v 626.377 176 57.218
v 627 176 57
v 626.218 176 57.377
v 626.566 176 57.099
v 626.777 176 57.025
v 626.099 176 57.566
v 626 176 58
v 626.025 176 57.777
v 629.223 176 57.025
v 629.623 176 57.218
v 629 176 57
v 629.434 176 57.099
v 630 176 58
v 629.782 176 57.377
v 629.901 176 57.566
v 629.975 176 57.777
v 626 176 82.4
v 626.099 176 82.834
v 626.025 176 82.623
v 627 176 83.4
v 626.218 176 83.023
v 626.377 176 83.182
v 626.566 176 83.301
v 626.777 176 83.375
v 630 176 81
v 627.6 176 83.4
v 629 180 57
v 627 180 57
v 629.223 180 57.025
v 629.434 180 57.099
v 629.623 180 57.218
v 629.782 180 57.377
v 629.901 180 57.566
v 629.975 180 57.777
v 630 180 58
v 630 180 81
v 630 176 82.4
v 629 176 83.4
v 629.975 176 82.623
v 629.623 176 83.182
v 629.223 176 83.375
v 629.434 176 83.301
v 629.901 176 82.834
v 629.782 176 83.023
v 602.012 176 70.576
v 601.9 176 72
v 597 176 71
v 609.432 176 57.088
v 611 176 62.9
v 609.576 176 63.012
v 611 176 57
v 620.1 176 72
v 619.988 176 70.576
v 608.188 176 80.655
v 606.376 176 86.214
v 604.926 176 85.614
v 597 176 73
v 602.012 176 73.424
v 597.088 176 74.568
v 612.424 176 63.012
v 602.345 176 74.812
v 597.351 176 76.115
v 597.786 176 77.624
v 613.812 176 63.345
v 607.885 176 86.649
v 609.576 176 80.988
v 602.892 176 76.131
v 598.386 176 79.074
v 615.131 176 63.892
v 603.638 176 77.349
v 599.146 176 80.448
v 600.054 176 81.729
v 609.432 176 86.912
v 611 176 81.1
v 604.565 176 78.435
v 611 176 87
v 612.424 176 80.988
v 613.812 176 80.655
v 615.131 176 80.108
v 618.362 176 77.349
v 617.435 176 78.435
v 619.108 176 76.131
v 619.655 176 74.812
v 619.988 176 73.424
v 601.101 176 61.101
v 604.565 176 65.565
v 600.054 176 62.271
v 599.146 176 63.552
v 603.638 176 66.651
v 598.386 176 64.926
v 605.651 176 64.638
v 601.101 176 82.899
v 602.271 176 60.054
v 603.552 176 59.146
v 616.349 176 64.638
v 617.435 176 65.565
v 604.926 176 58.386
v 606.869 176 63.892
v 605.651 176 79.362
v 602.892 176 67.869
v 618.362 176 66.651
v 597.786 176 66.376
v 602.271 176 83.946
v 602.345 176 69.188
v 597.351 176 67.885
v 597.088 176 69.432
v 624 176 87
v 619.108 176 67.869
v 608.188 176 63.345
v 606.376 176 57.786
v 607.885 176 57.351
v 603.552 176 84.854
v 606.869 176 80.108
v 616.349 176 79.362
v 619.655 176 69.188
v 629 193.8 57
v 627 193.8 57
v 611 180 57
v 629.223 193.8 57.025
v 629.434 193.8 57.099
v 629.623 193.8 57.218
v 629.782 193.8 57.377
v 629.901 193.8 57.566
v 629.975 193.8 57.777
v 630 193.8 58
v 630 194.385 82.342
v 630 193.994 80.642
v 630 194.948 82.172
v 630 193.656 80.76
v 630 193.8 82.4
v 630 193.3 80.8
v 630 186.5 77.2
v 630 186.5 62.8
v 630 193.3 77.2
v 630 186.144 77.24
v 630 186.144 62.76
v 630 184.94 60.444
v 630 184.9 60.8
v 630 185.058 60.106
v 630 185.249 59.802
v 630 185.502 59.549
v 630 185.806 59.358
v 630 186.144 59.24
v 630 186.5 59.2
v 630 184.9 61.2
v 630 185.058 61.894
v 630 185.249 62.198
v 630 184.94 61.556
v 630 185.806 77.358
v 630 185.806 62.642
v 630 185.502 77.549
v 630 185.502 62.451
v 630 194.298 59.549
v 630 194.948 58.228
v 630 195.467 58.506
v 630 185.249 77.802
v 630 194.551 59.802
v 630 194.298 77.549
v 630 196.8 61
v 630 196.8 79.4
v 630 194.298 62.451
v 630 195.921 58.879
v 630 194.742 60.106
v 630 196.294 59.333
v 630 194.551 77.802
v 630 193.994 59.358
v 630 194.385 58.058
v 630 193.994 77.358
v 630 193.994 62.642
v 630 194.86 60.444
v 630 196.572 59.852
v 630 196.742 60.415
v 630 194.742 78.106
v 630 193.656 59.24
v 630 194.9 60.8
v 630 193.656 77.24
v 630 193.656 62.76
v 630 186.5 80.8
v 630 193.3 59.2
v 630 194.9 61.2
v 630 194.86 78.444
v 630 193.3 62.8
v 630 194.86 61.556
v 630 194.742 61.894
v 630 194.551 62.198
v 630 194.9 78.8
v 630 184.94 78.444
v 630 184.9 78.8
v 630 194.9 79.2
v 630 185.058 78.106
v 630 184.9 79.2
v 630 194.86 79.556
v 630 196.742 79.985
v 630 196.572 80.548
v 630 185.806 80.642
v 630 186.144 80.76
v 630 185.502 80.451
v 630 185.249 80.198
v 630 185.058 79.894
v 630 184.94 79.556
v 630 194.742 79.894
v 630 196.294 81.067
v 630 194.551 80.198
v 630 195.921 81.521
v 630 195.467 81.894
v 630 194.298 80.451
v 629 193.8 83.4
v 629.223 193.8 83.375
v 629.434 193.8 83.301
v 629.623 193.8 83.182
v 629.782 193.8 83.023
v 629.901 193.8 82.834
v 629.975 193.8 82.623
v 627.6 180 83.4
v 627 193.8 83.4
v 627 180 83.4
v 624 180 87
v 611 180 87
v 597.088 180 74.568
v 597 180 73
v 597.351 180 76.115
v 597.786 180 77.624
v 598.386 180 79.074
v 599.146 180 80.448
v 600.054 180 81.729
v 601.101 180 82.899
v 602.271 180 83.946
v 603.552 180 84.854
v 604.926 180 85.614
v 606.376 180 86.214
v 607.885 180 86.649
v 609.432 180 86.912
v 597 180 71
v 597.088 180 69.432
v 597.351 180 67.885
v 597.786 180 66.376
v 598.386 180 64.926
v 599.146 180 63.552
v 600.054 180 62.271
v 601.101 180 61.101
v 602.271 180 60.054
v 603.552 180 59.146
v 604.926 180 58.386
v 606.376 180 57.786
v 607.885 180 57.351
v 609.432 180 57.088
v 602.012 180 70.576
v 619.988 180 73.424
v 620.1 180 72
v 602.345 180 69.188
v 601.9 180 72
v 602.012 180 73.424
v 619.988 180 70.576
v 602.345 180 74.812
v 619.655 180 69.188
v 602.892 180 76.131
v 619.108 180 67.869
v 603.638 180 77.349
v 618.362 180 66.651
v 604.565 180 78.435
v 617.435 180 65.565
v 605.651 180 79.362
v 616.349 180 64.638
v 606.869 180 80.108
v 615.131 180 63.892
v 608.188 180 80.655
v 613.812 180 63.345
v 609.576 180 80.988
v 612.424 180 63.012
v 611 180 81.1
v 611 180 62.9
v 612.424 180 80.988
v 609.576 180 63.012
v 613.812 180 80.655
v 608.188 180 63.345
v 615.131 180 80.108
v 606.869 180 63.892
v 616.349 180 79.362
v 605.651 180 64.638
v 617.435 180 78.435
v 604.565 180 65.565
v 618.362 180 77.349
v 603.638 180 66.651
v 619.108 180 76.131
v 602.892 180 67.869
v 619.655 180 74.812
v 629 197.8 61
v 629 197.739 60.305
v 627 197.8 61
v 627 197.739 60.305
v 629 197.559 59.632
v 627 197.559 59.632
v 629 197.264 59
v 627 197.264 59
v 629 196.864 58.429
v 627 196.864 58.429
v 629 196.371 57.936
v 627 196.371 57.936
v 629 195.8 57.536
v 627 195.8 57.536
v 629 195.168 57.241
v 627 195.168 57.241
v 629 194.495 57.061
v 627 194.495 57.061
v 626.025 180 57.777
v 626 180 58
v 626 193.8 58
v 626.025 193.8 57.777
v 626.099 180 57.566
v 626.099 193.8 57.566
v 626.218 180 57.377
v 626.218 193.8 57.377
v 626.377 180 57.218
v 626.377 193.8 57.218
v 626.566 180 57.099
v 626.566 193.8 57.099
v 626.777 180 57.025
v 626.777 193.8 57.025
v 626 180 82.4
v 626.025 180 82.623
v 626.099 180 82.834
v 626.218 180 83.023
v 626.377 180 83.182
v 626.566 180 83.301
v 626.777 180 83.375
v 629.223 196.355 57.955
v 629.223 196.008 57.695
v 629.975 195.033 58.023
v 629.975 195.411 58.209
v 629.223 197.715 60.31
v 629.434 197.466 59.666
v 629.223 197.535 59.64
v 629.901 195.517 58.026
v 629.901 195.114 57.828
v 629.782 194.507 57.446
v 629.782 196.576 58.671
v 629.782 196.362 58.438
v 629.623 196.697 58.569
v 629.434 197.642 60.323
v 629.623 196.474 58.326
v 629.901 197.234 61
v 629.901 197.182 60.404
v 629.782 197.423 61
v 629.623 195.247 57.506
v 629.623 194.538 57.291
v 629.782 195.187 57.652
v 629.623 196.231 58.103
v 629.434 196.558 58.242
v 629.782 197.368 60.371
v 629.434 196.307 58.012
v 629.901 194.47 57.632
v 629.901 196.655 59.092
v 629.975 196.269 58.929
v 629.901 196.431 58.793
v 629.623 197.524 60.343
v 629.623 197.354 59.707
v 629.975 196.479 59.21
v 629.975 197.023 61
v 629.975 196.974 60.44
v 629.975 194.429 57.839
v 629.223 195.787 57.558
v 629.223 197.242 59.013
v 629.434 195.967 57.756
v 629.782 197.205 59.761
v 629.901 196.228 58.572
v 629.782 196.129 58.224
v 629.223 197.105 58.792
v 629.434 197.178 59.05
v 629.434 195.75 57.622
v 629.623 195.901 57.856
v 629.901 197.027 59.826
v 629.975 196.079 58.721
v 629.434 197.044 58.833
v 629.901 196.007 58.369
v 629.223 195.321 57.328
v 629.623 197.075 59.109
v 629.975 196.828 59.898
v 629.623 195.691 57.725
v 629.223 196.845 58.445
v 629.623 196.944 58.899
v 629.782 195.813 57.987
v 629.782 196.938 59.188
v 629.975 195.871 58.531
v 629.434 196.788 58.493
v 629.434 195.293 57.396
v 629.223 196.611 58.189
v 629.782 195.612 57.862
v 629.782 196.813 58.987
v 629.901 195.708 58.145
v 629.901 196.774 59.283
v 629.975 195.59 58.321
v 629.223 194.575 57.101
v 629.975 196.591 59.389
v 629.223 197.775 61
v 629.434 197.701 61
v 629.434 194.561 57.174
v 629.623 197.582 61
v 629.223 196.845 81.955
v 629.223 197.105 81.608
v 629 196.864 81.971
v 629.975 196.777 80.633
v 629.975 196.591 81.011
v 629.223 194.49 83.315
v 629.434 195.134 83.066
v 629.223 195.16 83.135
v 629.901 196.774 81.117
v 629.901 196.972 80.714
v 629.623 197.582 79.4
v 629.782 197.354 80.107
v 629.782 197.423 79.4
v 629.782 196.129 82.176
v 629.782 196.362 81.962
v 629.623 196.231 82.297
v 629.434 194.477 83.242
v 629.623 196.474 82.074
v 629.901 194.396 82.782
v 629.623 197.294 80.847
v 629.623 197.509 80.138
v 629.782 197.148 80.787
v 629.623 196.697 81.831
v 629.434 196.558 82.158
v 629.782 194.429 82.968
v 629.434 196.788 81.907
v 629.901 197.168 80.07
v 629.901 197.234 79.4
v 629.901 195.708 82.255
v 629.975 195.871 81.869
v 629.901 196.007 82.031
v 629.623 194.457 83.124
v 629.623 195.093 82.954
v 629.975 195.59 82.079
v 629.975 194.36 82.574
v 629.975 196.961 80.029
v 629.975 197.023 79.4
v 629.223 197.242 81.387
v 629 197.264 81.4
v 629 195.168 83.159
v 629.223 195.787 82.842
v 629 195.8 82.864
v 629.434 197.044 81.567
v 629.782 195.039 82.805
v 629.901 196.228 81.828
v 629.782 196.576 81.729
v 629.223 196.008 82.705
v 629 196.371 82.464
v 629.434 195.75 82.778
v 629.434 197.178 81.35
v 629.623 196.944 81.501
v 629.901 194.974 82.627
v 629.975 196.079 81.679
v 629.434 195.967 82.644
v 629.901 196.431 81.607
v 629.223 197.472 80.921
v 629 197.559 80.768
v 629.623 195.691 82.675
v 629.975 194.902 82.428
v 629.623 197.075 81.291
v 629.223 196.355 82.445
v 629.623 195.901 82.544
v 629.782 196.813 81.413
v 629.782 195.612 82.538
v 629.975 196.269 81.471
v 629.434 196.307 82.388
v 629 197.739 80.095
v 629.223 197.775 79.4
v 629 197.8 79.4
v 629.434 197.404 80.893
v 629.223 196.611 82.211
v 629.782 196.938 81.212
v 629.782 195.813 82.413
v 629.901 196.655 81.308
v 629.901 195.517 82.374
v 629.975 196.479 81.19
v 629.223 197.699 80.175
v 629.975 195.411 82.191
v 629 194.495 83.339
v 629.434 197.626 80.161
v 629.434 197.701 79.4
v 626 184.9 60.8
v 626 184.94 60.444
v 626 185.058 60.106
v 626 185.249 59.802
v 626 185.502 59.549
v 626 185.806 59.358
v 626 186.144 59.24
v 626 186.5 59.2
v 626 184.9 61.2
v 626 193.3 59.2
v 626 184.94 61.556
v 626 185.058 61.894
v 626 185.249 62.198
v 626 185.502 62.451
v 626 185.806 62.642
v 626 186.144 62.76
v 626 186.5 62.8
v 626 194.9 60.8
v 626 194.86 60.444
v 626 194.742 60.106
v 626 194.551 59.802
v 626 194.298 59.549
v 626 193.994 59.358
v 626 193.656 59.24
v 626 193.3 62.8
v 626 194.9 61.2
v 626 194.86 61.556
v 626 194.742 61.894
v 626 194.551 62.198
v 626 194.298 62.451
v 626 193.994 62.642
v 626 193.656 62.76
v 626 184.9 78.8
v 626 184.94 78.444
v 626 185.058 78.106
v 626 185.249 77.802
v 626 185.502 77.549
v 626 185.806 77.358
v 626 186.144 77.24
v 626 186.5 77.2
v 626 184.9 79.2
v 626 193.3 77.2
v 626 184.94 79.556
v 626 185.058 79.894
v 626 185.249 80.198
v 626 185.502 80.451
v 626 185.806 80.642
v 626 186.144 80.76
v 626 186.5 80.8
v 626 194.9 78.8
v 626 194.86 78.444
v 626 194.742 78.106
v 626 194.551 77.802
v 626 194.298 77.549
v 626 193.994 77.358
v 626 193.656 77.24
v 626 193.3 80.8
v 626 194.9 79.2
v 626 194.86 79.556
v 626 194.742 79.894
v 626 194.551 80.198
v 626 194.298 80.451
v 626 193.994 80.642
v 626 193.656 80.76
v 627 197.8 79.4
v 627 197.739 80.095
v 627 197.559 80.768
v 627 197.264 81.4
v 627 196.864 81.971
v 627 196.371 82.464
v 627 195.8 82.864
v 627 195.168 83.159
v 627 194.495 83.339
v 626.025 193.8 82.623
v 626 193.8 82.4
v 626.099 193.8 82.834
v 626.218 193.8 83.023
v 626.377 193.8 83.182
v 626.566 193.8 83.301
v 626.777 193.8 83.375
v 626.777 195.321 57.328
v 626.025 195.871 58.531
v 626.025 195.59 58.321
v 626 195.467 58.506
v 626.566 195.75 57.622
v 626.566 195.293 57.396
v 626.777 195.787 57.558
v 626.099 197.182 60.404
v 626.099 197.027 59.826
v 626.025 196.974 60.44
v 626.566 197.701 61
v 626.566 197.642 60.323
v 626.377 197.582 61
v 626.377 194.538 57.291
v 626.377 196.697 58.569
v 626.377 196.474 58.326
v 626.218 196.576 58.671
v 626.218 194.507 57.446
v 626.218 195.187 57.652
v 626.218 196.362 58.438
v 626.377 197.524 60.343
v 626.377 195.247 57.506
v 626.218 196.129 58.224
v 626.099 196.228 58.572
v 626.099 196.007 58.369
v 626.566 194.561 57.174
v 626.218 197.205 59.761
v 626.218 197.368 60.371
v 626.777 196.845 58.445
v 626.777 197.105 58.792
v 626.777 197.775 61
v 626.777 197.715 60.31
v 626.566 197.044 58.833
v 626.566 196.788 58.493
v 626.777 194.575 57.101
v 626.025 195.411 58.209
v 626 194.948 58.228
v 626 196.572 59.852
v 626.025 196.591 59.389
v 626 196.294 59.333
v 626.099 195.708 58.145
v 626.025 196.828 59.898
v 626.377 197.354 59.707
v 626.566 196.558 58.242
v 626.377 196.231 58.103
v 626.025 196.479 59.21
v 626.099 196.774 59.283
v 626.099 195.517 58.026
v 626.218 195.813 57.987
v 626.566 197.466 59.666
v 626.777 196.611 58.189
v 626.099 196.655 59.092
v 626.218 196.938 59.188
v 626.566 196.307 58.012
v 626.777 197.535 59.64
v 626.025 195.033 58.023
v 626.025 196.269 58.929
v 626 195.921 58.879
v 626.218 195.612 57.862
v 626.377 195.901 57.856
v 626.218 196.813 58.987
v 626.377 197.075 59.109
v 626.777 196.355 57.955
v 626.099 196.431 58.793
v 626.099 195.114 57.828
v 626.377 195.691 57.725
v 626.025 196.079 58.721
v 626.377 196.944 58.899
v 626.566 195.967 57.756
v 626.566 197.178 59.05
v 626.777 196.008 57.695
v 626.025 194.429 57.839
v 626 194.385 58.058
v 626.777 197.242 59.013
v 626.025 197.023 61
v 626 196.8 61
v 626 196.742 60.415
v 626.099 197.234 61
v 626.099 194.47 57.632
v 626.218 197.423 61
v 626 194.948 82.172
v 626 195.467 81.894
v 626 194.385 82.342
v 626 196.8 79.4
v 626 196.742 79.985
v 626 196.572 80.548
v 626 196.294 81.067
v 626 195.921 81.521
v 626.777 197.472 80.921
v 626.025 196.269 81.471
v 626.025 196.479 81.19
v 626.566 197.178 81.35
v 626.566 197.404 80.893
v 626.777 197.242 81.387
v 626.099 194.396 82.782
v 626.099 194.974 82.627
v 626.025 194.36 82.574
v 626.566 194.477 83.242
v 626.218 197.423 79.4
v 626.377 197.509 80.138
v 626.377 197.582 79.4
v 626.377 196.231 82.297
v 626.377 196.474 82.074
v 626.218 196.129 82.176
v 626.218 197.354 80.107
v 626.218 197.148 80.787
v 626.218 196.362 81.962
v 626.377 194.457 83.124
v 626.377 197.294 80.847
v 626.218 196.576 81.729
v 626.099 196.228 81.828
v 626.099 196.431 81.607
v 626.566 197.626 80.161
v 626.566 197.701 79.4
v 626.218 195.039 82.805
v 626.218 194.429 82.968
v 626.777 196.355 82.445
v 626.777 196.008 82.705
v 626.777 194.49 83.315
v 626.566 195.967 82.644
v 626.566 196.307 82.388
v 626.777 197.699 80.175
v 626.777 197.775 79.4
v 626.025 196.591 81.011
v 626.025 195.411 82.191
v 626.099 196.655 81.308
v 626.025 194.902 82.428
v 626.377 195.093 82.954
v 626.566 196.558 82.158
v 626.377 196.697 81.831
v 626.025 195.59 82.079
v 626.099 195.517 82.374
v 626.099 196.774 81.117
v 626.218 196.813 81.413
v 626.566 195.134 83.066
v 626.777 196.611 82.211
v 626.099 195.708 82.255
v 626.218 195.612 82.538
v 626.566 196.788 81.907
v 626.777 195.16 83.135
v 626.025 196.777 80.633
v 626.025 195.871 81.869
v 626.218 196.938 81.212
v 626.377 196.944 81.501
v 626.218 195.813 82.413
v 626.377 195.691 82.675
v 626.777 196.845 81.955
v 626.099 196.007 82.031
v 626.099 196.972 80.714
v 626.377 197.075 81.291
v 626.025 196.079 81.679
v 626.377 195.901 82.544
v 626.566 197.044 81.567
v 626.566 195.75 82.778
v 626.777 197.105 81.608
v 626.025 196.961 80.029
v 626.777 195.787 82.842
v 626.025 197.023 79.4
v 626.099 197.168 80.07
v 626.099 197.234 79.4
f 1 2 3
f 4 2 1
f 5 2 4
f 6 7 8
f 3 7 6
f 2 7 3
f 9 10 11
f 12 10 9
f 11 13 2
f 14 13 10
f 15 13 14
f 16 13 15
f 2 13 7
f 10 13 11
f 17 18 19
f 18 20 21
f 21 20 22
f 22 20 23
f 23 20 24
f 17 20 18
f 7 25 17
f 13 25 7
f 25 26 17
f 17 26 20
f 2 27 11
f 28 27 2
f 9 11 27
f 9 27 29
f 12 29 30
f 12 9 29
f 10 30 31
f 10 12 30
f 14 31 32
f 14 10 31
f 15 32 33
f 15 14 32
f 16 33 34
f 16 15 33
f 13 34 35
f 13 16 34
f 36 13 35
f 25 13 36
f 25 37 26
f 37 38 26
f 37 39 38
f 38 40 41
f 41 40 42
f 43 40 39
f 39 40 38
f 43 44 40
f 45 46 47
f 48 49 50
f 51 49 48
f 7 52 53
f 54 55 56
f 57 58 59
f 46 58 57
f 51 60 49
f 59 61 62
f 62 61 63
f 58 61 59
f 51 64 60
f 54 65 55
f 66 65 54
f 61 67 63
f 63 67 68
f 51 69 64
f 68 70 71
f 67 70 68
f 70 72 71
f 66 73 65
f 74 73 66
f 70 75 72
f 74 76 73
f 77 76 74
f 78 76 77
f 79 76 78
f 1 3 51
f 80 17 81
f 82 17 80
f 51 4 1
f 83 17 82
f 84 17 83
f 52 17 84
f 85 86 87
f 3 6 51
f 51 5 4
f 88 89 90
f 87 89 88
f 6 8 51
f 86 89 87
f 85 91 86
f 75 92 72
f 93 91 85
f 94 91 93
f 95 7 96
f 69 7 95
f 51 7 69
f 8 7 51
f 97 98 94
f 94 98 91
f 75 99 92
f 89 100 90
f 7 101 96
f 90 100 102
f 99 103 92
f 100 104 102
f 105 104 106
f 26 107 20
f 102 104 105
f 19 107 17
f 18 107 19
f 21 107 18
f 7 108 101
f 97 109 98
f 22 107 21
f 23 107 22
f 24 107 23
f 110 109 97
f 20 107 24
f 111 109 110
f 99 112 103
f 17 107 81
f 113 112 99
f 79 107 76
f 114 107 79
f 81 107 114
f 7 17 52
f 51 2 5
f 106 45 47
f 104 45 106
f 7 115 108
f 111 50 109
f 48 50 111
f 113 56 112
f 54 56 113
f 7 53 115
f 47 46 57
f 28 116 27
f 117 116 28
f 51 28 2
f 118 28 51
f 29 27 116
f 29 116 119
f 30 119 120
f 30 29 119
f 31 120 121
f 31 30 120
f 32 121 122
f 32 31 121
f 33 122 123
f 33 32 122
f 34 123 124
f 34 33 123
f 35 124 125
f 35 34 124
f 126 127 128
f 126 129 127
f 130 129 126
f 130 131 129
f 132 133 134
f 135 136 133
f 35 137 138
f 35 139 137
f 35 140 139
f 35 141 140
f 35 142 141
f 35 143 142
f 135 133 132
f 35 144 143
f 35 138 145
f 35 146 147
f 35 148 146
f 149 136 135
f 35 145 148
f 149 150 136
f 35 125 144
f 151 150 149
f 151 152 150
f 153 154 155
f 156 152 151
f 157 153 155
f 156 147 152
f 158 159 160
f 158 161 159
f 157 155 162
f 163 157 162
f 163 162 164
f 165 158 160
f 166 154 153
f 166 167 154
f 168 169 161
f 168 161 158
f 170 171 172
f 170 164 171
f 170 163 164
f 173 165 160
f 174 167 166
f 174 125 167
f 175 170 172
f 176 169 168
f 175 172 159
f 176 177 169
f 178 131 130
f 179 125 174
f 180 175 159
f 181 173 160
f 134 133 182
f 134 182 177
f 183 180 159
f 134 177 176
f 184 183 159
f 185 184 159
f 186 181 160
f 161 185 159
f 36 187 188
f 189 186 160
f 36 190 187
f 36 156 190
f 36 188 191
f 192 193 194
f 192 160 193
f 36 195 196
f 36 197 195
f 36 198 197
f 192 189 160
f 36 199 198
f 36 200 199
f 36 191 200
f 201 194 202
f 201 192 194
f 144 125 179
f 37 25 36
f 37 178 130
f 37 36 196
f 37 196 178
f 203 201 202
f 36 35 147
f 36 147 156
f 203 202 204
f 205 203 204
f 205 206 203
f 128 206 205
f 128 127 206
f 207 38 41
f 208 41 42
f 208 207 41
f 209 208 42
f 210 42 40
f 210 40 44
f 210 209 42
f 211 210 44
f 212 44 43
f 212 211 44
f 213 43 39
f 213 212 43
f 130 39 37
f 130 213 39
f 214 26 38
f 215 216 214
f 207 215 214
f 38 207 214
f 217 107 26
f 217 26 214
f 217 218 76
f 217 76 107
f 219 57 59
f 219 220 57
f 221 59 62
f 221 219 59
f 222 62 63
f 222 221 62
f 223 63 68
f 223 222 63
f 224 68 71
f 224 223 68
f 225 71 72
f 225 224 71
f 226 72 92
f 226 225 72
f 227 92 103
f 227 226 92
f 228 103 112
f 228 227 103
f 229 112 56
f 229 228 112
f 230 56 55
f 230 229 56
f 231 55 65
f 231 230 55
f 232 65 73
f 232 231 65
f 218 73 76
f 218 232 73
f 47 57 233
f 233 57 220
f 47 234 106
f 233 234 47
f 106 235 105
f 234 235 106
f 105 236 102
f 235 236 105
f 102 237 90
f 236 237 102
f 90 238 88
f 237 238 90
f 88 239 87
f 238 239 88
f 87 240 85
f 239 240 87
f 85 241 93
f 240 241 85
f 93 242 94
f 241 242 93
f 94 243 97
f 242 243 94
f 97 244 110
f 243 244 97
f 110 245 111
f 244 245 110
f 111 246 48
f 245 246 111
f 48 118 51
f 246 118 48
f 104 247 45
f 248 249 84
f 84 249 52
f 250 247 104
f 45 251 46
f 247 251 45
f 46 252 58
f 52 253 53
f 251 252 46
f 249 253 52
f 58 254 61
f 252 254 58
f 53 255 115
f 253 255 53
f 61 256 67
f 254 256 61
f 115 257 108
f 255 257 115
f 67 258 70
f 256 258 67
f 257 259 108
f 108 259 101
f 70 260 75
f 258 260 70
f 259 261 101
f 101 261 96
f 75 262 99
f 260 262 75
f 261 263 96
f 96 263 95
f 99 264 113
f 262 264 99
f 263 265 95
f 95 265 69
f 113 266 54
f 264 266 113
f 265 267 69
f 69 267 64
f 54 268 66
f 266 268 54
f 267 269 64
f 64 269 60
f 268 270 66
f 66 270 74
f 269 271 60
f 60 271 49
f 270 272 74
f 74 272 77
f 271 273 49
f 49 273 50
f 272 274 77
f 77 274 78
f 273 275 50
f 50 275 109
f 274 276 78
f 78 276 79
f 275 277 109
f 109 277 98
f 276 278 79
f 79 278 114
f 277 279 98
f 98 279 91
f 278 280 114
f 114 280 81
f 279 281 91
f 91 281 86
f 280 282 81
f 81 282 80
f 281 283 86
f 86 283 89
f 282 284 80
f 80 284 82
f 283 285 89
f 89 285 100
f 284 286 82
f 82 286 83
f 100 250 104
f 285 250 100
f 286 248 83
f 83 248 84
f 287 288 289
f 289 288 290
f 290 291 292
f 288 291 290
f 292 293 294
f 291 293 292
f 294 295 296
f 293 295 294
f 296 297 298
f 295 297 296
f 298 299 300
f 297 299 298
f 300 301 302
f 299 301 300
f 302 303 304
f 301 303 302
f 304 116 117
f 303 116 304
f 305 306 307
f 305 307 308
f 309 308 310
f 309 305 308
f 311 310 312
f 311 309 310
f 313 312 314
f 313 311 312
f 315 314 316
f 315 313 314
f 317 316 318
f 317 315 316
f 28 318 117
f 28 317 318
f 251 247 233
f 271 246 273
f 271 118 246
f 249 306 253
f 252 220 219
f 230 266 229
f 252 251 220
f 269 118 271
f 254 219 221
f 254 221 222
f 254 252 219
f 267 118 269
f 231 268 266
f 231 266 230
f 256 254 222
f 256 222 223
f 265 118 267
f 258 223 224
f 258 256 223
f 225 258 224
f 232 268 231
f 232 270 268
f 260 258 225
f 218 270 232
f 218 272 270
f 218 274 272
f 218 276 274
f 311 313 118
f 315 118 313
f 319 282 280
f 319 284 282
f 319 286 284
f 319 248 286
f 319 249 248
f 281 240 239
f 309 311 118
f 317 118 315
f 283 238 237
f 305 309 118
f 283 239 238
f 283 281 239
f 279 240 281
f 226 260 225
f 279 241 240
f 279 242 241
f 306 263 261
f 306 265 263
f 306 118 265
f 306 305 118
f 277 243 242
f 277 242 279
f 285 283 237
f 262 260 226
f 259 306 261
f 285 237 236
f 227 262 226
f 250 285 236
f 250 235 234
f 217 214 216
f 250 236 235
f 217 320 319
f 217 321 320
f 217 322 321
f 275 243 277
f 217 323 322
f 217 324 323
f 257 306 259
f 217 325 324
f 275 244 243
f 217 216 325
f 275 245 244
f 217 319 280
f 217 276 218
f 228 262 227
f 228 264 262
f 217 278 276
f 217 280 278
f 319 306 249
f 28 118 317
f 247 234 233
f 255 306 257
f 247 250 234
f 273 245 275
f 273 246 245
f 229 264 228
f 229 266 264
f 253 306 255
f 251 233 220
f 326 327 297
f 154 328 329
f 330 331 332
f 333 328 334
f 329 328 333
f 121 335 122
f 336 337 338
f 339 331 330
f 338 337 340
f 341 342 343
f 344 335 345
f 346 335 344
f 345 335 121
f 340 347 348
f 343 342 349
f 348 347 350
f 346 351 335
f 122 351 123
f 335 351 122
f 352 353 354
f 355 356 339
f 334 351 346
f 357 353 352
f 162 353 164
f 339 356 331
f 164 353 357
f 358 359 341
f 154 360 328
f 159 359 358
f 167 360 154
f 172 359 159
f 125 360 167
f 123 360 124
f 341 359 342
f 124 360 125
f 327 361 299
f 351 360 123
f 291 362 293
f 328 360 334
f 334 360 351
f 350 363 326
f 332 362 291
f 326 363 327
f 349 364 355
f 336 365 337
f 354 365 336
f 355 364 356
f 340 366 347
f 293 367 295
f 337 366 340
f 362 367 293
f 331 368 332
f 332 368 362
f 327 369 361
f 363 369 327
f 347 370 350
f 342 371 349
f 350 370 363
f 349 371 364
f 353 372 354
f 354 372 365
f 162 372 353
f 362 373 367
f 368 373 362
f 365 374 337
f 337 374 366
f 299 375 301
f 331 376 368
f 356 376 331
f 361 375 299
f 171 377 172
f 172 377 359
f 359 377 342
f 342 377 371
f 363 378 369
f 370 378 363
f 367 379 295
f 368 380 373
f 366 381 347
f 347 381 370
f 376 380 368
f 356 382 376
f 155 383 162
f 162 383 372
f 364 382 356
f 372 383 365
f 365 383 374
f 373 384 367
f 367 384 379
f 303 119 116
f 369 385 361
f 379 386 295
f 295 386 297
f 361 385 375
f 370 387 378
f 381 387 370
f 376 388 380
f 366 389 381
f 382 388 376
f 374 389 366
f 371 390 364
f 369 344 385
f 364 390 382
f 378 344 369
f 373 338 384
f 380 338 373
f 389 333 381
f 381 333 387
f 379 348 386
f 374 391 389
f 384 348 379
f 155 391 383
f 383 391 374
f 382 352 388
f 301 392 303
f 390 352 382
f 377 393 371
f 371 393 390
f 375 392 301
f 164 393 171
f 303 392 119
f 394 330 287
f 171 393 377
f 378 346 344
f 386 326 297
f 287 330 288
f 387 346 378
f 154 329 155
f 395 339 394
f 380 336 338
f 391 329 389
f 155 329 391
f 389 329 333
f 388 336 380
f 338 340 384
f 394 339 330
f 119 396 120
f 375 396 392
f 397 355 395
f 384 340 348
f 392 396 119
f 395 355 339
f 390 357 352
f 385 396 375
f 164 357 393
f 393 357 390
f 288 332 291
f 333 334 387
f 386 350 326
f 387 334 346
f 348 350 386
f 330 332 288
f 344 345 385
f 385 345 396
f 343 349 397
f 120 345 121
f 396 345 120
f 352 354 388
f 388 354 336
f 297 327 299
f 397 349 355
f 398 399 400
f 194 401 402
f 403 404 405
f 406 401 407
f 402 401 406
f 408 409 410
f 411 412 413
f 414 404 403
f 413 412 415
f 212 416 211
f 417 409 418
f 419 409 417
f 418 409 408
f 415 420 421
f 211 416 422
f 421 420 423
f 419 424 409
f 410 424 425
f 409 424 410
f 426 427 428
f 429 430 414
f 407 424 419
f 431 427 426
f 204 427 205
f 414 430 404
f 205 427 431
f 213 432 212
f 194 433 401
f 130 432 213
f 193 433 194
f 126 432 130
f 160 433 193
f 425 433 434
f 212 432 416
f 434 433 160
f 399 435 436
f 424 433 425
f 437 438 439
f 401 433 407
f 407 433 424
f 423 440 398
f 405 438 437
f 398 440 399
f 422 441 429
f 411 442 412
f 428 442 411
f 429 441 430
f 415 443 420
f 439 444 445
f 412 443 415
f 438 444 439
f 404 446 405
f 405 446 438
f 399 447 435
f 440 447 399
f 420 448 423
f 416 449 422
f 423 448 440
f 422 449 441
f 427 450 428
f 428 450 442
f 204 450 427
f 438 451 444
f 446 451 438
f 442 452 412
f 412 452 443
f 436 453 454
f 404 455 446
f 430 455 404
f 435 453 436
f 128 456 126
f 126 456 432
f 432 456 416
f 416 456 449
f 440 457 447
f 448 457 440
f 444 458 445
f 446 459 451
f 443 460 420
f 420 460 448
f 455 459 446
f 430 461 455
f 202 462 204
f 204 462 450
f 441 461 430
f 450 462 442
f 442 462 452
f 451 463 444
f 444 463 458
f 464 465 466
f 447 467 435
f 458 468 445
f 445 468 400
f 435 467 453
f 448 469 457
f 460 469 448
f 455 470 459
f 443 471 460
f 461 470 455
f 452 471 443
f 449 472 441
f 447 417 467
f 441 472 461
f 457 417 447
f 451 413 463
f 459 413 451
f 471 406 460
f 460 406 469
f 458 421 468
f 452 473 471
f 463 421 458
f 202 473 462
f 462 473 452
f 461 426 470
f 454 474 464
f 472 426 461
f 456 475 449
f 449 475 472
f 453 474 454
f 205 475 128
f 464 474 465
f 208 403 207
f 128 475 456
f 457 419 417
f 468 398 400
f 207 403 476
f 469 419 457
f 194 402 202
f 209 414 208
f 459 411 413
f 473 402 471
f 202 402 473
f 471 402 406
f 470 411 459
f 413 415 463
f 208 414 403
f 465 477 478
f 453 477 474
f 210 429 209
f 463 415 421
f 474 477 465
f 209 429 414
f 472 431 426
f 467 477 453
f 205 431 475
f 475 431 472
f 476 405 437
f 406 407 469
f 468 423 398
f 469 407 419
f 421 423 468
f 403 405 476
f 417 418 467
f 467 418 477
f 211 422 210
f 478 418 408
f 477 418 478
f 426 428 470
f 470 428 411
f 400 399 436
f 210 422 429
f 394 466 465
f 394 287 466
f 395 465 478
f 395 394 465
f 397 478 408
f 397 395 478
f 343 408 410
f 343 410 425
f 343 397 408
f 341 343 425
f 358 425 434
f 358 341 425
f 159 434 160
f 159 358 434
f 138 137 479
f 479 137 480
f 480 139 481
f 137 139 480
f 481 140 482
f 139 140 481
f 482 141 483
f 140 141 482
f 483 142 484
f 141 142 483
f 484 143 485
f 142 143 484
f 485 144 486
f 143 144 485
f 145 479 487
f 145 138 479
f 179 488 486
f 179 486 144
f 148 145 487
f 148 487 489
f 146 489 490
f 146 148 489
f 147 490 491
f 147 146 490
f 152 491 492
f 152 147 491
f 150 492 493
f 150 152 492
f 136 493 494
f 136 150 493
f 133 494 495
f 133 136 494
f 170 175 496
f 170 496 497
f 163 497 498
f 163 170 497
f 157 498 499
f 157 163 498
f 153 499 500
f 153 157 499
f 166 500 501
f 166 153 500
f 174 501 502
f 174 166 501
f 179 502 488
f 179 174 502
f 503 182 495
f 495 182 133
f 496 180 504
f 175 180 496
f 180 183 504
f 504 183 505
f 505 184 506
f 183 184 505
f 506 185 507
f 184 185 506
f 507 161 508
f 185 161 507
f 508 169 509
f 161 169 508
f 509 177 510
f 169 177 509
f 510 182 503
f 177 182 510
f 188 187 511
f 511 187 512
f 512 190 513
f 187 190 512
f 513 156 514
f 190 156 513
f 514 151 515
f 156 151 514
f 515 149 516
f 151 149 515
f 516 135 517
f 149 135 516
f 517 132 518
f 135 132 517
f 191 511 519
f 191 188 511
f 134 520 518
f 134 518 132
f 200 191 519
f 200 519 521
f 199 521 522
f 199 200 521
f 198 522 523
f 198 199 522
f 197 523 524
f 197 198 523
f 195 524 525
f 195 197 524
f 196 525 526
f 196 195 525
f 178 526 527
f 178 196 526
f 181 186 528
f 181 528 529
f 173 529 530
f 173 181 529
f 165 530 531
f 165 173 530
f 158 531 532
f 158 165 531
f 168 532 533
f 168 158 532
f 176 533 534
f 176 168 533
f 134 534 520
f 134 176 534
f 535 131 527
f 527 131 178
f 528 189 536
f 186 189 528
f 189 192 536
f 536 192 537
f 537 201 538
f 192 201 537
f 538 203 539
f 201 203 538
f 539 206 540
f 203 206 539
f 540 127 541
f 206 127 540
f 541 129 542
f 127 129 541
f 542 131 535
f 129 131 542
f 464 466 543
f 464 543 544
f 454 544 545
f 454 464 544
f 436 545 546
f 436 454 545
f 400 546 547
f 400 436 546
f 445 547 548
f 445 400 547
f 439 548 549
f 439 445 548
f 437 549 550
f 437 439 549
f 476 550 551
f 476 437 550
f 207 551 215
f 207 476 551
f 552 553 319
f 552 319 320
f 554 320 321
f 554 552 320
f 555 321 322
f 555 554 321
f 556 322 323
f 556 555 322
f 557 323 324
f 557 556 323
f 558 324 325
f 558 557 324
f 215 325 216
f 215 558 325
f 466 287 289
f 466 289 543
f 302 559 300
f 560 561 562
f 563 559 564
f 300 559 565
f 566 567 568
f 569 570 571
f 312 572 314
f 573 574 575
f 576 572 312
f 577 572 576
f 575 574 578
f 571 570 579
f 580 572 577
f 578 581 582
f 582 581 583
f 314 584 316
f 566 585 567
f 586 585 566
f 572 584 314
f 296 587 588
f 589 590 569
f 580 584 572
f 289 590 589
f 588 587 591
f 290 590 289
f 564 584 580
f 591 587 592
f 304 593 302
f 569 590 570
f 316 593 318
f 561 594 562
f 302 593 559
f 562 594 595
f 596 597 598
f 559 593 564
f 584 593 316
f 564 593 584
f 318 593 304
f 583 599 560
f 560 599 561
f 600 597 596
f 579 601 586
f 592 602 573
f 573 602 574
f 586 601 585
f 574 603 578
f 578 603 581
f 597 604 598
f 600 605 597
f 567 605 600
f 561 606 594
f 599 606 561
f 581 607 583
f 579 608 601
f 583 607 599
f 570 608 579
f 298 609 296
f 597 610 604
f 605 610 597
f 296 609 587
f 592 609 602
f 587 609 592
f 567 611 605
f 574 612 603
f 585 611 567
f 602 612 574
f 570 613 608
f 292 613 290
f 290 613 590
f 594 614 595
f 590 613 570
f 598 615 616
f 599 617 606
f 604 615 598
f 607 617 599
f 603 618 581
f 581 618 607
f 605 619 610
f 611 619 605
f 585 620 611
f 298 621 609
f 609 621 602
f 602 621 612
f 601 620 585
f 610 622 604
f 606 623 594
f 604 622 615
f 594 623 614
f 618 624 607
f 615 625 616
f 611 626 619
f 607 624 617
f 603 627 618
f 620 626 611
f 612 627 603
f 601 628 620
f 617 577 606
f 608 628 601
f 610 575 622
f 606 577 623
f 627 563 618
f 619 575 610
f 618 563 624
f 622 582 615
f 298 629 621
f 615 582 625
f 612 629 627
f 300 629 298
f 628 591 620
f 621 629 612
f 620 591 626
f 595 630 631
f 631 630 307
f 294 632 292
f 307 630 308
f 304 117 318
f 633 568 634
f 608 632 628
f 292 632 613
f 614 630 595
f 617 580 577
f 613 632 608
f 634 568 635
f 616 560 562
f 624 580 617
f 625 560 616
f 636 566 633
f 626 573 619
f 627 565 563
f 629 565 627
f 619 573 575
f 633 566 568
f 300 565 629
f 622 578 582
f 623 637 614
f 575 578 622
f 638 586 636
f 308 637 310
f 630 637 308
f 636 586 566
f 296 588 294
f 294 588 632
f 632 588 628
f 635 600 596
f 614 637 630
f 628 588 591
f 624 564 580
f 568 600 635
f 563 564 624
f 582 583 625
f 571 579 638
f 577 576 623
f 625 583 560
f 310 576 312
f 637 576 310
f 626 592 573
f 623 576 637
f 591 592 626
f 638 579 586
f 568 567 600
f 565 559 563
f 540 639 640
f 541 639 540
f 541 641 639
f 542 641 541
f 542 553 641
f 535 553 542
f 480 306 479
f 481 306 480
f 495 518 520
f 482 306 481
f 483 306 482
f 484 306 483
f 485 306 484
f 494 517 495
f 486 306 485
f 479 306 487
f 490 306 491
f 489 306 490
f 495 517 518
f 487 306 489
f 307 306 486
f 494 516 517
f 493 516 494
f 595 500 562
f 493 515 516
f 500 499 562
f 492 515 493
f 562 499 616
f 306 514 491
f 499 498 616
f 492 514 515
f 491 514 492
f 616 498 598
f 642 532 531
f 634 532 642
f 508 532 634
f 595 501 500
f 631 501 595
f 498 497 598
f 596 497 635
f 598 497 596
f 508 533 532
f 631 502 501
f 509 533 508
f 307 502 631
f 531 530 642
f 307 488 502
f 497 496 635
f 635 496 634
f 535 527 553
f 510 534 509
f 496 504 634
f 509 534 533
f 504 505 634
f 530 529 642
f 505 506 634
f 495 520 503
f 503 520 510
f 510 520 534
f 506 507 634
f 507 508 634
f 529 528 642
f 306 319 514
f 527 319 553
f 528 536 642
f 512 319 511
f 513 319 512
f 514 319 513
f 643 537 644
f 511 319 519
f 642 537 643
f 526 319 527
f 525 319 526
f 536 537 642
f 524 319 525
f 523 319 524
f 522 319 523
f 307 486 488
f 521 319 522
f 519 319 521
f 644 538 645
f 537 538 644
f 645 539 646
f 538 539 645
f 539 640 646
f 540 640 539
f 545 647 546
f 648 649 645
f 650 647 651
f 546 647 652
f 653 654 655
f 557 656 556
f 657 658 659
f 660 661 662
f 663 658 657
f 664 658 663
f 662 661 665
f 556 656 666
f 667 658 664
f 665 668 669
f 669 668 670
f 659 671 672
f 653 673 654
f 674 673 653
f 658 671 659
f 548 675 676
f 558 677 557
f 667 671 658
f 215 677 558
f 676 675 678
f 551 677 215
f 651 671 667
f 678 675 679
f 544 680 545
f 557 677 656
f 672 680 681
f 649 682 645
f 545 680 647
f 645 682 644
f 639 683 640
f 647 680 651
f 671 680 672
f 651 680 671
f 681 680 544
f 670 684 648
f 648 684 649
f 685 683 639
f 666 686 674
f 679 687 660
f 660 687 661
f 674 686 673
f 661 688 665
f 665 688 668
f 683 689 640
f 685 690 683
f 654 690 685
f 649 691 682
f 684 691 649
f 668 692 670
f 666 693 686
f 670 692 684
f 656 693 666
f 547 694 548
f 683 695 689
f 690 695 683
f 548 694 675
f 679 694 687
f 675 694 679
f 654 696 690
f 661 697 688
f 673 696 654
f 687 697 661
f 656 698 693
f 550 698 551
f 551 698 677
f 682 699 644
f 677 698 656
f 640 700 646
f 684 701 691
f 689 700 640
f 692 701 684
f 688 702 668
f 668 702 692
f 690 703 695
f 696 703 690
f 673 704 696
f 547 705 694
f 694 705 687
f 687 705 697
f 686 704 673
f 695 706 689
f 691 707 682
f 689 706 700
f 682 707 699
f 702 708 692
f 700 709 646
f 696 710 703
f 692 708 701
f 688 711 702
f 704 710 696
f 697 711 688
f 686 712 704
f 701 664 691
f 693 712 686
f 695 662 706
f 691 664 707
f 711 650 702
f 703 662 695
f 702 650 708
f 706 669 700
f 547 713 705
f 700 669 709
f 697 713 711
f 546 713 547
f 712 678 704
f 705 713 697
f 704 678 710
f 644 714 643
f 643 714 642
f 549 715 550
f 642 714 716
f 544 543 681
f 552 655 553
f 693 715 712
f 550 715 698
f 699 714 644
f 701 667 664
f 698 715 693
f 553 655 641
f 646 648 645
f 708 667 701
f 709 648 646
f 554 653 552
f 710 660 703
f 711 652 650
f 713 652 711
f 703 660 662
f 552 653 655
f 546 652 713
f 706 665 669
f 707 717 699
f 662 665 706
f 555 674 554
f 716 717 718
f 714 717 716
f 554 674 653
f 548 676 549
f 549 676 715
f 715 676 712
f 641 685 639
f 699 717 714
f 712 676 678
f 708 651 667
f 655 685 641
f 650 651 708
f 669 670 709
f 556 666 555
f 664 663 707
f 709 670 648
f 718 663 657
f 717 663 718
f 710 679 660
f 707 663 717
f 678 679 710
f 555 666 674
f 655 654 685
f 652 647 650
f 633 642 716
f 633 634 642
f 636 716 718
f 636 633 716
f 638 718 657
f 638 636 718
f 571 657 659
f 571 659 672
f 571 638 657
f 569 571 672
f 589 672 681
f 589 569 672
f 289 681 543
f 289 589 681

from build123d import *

# Parameters (mm, degrees)
CYLINDER001_R     = 9.1
CYLINDER001_DEPTH = 20
BOX_W             = 33
BOX_H             = 4
BOX_DEPTH         = 30
FILLET_R          = 14
FILLET005_R       = 1
CHAMFER_SIZE      = 6
BOX003_W          = 10
BOX003_H          = 10
BOX003_DEPTH      = 3.6
FILLET004_R       = 1.6
BOX002_W          = 10
BOX002_H          = 10
BOX002_DEPTH      = 3.6
FILLET003_R       = 1.6
BOX001_W          = 4
BOX001_H          = 21.8
BOX001_DEPTH      = 26.4
FILLET001_R       = 4
FILLET002_R       = 1


with BuildPart() as cilindro001:
    # Cylinder001 → Cylinder001 (new body)
    with BuildSketch(Plane(origin=(611, 168, 72), x_dir=(1, 0, 0), z_dir=(0, 1, 0))):
        Circle(CYLINDER001_R)
    extrude(amount=CYLINDER001_DEPTH)


with BuildPart() as chamfer_body:
    # Box → Box (new body)
    with BuildSketch(Plane(origin=(597, 176, 57), x_dir=(1, 0, 0), z_dir=(0, 0, 1))):
        with Locations((16.5, 2)):
            Rectangle(BOX_W, BOX_H)
    extrude(amount=BOX_DEPTH)

    # Fillet
    fillet_edges = [chamfer_body.edges().sort_by_distance(p)[0] for p in [
        (597, 178, 87),
        (597, 178, 57),
    ]]
    fillet(fillet_edges, radius=FILLET_R)

    # Fillet005
    fillet005_edges = [chamfer_body.edges().sort_by_distance(p)[0] for p in [
        (630, 178, 57),
    ]]
    fillet(fillet005_edges, radius=FILLET005_R)

    # Chamfer
    chamfer_edges = [chamfer_body.edges().sort_by_distance(p)[0] for p in [
        (630, 178, 87),
    ]]
    chamfer(chamfer_edges, length=CHAMFER_SIZE)


with BuildPart() as fillet004:
    # Box003 → Box003 (new body)
    with BuildSketch(Plane(origin=(621, 184.9, 59.2), x_dir=(1, 0, 0), z_dir=(0, 0, 1))):
        with Locations((5, 5)):
            Rectangle(BOX003_W, BOX003_H)
    extrude(amount=BOX003_DEPTH)

    # Fillet004
    fillet004_edges = [fillet004.edges().sort_by_distance(p)[0] for p in [
        (626, 184.9, 59.2),
        (626, 184.9, 62.8),
        (626, 194.9, 59.2),
        (626, 194.9, 62.8),
    ]]
    fillet(fillet004_edges, radius=FILLET004_R)


with BuildPart() as fillet004_1:
    # Fillet004 placement: moved
    add(fillet004.part.moved(Location((0, 0, 18))))


with BuildPart() as fillet003:
    # Box002 → Box002 (new body)
    with BuildSketch(Plane(origin=(621, 184.9, 59.2), x_dir=(1, 0, 0), z_dir=(0, 0, 1))):
        with Locations((5, 5)):
            Rectangle(BOX002_W, BOX002_H)
    extrude(amount=BOX002_DEPTH)

    # Fillet003
    fillet003_edges = [fillet003.edges().sort_by_distance(p)[0] for p in [
        (626, 184.9, 59.2),
        (626, 184.9, 62.8),
        (626, 194.9, 59.2),
        (626, 194.9, 62.8),
    ]]
    fillet(fillet003_edges, radius=FILLET003_R)


with BuildPart() as cut002:
    # Box001 → Box001 (new body)
    with BuildSketch(Plane(origin=(626, 176, 57), x_dir=(1, 0, 0), z_dir=(0, 0, 1))):
        with Locations((2, 10.9)):
            Rectangle(BOX001_W, BOX001_H)
    extrude(amount=BOX001_DEPTH)

    # Fillet001
    fillet001_edges = [cut002.edges().sort_by_distance(p)[0] for p in [
        (628, 197.8, 57),
        (628, 197.8, 83.4),
    ]]
    fillet(fillet001_edges, radius=FILLET001_R)

    # Fillet002
    fillet002_edges = [cut002.edges().sort_by_distance(p)[0] for p in [
        (626, 184.9, 83.4),
        (626, 197.8, 70.2),
        (626, 184.9, 57),
        (630, 184.9, 83.4),
        (630, 197.8, 70.2),
        (630, 184.9, 57),
    ]]
    fillet(fillet002_edges, radius=FILLET002_R)

    # Cut: cut Fillet003
    add(fillet003.part, mode=Mode.SUBTRACT)

    # Cut001: cut Fillet004
    add(fillet004_1.part, mode=Mode.SUBTRACT)

    # Fusion: union Chamfer body
    add(chamfer_body.part)

    # Cut002: cut Cilindro001
    add(cilindro001.part, mode=Mode.SUBTRACT)


solid = cut002.part
